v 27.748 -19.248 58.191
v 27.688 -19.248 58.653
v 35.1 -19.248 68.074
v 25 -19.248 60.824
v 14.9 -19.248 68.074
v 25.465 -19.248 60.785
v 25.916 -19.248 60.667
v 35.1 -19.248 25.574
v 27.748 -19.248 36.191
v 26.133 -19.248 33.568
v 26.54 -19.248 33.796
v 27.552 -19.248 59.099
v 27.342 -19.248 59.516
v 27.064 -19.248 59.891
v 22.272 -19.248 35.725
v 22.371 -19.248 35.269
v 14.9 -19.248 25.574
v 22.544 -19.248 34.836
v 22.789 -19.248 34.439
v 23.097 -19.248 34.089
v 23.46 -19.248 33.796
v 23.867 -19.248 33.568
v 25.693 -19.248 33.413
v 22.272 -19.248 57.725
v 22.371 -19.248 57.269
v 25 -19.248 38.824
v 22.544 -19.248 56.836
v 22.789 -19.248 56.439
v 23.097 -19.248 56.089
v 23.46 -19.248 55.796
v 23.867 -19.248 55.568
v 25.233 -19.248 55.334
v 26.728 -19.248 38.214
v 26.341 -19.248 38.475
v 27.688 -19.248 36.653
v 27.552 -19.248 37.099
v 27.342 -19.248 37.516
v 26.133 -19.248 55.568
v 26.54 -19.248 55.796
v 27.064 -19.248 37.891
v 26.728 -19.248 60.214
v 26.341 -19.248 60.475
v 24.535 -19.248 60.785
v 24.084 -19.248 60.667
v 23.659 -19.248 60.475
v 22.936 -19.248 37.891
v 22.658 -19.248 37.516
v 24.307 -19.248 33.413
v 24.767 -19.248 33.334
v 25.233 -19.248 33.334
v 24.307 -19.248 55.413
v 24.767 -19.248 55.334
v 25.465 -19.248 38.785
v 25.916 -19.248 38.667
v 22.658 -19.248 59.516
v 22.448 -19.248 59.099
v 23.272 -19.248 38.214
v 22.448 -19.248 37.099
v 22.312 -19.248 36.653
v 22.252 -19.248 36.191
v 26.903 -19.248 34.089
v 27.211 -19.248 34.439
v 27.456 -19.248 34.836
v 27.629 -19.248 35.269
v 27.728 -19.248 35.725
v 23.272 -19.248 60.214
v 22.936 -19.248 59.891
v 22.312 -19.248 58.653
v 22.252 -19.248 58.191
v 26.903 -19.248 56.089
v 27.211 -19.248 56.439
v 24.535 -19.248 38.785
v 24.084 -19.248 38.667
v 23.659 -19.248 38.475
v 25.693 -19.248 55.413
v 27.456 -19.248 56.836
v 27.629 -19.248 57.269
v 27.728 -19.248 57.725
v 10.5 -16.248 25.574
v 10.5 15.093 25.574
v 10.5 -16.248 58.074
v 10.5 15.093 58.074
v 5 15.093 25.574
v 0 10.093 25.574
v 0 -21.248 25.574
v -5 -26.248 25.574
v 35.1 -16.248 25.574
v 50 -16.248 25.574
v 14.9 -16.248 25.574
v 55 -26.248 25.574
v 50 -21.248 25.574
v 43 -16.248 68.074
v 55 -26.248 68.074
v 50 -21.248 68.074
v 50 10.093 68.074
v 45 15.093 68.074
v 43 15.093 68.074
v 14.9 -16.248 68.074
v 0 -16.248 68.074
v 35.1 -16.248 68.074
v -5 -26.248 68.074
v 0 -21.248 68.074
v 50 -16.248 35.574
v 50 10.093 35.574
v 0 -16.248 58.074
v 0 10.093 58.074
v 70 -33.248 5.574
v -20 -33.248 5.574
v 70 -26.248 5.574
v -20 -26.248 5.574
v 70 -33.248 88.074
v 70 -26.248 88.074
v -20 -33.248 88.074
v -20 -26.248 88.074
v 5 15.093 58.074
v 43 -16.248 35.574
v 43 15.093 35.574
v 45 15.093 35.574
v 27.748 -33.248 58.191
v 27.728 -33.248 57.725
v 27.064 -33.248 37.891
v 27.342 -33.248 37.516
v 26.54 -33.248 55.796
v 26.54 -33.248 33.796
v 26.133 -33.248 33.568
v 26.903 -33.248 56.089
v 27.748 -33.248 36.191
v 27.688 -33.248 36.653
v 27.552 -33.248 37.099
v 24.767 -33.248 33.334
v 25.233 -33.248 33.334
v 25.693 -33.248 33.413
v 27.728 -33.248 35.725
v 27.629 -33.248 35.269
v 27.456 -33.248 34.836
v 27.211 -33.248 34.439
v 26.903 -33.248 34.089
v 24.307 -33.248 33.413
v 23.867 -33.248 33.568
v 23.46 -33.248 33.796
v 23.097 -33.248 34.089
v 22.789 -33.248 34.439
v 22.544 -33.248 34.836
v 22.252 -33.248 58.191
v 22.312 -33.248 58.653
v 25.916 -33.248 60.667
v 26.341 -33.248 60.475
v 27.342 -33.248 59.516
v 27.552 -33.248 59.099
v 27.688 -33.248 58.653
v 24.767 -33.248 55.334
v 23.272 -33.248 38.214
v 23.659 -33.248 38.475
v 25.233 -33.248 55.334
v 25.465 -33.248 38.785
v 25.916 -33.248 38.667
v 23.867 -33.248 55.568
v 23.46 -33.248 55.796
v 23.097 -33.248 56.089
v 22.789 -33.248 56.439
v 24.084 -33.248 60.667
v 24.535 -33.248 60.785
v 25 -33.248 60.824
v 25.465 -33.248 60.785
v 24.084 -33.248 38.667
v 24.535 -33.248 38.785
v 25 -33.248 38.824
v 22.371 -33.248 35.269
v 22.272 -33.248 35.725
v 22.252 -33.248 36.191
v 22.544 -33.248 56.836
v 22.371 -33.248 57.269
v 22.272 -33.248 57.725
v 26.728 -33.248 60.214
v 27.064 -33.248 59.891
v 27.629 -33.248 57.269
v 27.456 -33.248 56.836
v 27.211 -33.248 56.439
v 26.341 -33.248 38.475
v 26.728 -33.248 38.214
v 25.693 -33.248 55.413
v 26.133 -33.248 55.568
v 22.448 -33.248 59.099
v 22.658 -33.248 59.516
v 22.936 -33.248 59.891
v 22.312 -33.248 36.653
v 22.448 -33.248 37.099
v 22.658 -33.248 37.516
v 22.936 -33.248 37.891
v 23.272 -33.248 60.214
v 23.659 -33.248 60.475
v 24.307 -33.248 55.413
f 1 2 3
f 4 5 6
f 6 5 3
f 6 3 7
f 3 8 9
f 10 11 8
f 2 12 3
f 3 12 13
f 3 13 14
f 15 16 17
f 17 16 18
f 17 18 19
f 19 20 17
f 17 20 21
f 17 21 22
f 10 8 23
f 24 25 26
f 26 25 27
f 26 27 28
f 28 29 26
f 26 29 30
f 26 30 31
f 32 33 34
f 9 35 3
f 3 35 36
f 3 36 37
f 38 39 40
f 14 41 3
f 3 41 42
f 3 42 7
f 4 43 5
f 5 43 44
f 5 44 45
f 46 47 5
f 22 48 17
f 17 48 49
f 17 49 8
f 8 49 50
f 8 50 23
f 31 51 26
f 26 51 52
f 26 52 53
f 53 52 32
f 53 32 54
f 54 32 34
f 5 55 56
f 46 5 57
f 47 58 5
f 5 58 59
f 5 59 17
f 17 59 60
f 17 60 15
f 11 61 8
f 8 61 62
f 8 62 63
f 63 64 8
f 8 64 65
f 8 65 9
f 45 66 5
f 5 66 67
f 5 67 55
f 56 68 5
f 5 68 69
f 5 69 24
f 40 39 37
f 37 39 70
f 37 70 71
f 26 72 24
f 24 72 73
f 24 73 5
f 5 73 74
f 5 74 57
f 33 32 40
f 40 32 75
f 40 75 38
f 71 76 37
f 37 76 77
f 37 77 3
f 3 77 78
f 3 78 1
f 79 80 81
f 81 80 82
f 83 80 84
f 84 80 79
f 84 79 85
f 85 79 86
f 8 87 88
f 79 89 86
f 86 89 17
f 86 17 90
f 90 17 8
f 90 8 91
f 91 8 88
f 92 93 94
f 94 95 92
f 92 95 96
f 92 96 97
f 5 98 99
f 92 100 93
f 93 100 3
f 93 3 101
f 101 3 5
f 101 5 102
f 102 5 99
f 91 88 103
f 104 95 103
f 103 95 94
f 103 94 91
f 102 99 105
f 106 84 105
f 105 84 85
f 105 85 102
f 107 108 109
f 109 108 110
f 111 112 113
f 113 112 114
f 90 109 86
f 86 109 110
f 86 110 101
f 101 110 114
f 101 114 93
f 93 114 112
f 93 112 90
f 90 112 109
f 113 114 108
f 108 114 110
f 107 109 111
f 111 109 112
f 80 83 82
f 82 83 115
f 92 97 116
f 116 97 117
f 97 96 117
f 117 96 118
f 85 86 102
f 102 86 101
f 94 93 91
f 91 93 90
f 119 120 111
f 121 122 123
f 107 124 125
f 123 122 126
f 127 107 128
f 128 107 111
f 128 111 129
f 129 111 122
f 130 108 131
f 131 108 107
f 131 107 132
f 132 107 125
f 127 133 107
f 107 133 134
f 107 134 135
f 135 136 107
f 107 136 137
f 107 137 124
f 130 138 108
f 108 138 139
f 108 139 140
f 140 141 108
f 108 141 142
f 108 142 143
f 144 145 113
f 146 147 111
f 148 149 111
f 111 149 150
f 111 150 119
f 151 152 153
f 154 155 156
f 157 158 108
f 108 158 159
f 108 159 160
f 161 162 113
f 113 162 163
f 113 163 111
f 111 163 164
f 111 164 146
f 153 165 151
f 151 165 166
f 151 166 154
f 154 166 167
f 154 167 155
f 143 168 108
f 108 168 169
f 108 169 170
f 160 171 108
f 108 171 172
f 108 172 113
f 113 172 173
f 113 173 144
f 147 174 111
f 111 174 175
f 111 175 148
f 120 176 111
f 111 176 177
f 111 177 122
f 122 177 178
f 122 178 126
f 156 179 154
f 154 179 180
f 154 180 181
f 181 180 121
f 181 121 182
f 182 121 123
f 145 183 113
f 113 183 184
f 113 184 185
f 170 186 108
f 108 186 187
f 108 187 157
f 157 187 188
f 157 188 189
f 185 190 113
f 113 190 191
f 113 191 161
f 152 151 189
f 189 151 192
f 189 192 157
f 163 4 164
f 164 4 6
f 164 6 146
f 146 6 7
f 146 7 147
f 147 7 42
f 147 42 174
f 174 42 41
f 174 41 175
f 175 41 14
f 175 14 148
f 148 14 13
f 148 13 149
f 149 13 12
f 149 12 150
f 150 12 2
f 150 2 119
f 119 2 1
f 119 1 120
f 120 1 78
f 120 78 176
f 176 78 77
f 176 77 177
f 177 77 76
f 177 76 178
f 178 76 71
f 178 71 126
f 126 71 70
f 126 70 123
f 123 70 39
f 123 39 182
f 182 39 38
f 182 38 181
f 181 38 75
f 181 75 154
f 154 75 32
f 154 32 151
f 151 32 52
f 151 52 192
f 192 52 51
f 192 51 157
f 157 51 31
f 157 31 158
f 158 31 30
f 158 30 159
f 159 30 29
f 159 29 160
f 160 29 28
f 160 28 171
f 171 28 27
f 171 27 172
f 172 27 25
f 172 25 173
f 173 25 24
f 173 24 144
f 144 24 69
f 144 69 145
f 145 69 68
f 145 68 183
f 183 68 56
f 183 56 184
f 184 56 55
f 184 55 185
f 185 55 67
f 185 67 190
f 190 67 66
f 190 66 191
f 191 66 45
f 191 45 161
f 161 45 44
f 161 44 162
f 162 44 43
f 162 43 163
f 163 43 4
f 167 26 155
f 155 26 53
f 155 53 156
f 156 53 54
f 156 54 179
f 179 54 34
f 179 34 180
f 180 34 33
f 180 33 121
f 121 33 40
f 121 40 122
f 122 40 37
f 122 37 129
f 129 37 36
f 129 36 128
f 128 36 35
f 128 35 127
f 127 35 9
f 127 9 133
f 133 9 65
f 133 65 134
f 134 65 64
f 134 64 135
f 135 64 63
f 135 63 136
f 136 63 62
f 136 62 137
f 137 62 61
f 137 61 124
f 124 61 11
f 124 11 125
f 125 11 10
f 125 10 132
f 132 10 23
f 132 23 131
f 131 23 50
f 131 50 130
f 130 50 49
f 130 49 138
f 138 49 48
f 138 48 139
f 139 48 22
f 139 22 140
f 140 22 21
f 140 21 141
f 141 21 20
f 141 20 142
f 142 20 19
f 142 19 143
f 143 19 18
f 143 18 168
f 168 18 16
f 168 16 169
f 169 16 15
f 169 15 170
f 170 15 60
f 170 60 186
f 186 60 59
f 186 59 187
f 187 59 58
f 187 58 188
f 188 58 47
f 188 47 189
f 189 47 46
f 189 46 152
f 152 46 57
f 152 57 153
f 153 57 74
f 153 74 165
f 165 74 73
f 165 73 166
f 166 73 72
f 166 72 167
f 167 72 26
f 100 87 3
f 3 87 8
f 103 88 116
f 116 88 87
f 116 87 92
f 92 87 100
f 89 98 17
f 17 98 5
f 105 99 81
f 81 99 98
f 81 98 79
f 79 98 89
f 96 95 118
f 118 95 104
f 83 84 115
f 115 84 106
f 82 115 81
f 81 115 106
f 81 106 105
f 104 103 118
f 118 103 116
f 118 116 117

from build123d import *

# Parameters (mm, degrees)
SKETCH1_W           = 42.5
SKETCH1_H           = 11
BOSS_EXTRUDE1_DEPTH = 50
SKETCH2_W           = 82.5
SKETCH2_H           = 4
BOSS_EXTRUDE2_DEPTH = 20
SKETCH3_W           = 82.5
SKETCH3_H           = 4
BOSS_EXTRUDE3_DEPTH = 70
SKETCH4_W           = 10.5
SKETCH4_H           = 34.341245972
SKETCH4_W_2         = 7
BOSS_EXTRUDE4_DEPTH = 42.5
CHAMFER1_SIZE       = 5
SKETCH5_W           = 90
SKETCH5_H           = 82.5
BOSS_EXTRUDE5_DEPTH = 3
SKETCH6_R           = 2.75
CUT_EXTRUDE1_DEPTH  = 118.628081347
SKETCH7_W           = 7.9
SKETCH7_H           = 42.5
SKETCH7_W_2         = 4.4
BOSS_EXTRUDE6_DEPTH = 3
CHAMFER2_SIZE       = 5
CUT_EXTRUDE2_REACH  = 124.45
SKETCH8_W           = 5.5
SKETCH8_H           = 10
SKETCH8_W_2         = 5
SKETCH9_W           = 2
SKETCH9_H           = 10
SKETCH9_W_2         = 5
CUT_EXTRUDE3_DEPTH  = 31.341245972


with BuildPart() as part:
    # Sketch1 → Boss-Extrude1 (new body)
    with BuildSketch(Plane(origin=(0, 0, 0), x_dir=(0, 0, -1), z_dir=(1, 0, 0))):
        with Locations((-46.82408442, -24.747804901)):
            Rectangle(SKETCH1_W, SKETCH1_H)
    extrude(amount=BOSS_EXTRUDE1_DEPTH)

    # Sketch2 → Boss-Extrude2 (add)
    with BuildSketch(Plane.ZY):
        with Locations((46.82408442, -28.247804901)):
            Rectangle(SKETCH2_W, SKETCH2_H)
    extrude(amount=BOSS_EXTRUDE2_DEPTH)

    # Sketch3 → Boss-Extrude3 (add)
    with BuildSketch(Plane(origin=(0, 0, 0), x_dir=(0, 0, -1), z_dir=(1, 0, 0))):
        with Locations((-46.82408442, -28.247804901)):
            Rectangle(SKETCH3_W, SKETCH3_H)
    extrude(amount=BOSS_EXTRUDE3_DEPTH)

    # Sketch4 → Boss-Extrude4 (add)
    with BuildSketch(Plane.XY.offset(68.07408442)):
        with Locations((5.25, -2.077181915)):
            Rectangle(SKETCH4_W, SKETCH4_H)
        with Locations((46.5, -2.077181915)):
            Rectangle(SKETCH4_W_2, SKETCH4_H)
    extrude(amount=-BOSS_EXTRUDE4_DEPTH)

    # Chamfer1
    chamfer1_edges = [part.edges().sort_by_distance(p)[0] for p in [
        (0, -26.247804901, 46.82408442),
        (50, -26.247804901, 46.82408442),
    ]]
    chamfer(chamfer1_edges, length=CHAMFER1_SIZE)

    # Sketch5 → Boss-Extrude5 (add)
    with BuildSketch(Plane.XZ.offset(30.247804901)):
        with Locations((25, 46.82408442)):
            Rectangle(SKETCH5_W, SKETCH5_H)
    extrude(amount=BOSS_EXTRUDE5_DEPTH)

    # Sketch6 → Cut-Extrude1 (cut, through all)
    with BuildSketch(Plane(origin=(0, -19.247804901, 0), x_dir=(1, 0, 0), z_dir=(0, 1, 0))):
        with Locations(Location((25, -36.07408442, 0), (0, 0, 270))):
            Circle(SKETCH6_R)
        with Locations(Location((25, -58.07408442, 0), (0, 0, 270))):
            Circle(SKETCH6_R)
    extrude(amount=-CUT_EXTRUDE1_DEPTH, mode=Mode.SUBTRACT)

    # Sketch7 → Boss-Extrude6 (add)
    with BuildSketch(Plane(origin=(0, -19.247804901, 0), x_dir=(1, 0, 0), z_dir=(0, 1, 0))):
        with Locations((39.05, -46.82408442)):
            Rectangle(SKETCH7_W, SKETCH7_H)
        with Locations((12.7, -46.82408442)):
            Rectangle(SKETCH7_W_2, SKETCH7_H)
    extrude(amount=BOSS_EXTRUDE6_DEPTH)

    # Chamfer2
    chamfer2_edges = [part.edges().sort_by_distance(p)[0] for p in [
        (0, 15.093441071, 46.82408442),
        (50, 15.093441071, 46.82408442),
    ]]
    chamfer(chamfer2_edges, length=CHAMFER2_SIZE)

    # Cut-Extrude2: up to this face of the body (flat: up to its plane)
    cut_extrude2_end = Plane(part.part.faces().sort_by_distance((12.7, -16.247804901, 46.82408442))[0])
    # Sketch8 → Cut-Extrude2 (cut, up to the picked face)
    with BuildSketch(Plane(origin=(0, 15.093441071, 0), x_dir=(1, 0, 0), z_dir=(0, 1, 0)), mode=Mode.PRIVATE) as cut_extrude2_sk1:
        with Locations((7.75, -63.07408442)):
            Rectangle(SKETCH8_W, SKETCH8_H)
    cut_extrude2_tool1 = split(extrude(cut_extrude2_sk1.sketch, amount=-CUT_EXTRUDE2_REACH, mode=Mode.PRIVATE), bisect_by=cut_extrude2_end, keep=Keep.BOTH, mode=Mode.PRIVATE)
    # Sketch8 → Cut-Extrude2 (cut, up to the picked face)
    with BuildSketch(Plane(origin=(0, 15.093441071, 0), x_dir=(1, 0, 0), z_dir=(0, 1, 0)), mode=Mode.PRIVATE) as cut_extrude2_sk2:
        with Locations((47.5, -30.57408442)):
            Rectangle(SKETCH8_W_2, SKETCH8_H)
    cut_extrude2_tool2 = split(extrude(cut_extrude2_sk2.sketch, amount=-CUT_EXTRUDE2_REACH, mode=Mode.PRIVATE), bisect_by=cut_extrude2_end, keep=Keep.BOTH, mode=Mode.PRIVATE)
    add(cut_extrude2_tool1.solids().sort_by(Axis((7.75, 15.093441, 63.074084), (0, -1, 0)))[0], mode=Mode.SUBTRACT)
    add(cut_extrude2_tool2.solids().sort_by(Axis((47.5, 15.093441, 30.574084), (0, -1, 0)))[0], mode=Mode.SUBTRACT)

    # Sketch9 → Cut-Extrude3 (cut)
    with BuildSketch(Plane(origin=(0, 15.093441071, 0), x_dir=(1, 0, 0), z_dir=(0, 1, 0))):
        with Locations((44, -30.57408442)):
            Rectangle(SKETCH9_W, SKETCH9_H)
        with Locations((2.5, -63.07408442)):
            Rectangle(SKETCH9_W_2, SKETCH9_H)
    extrude(amount=-CUT_EXTRUDE3_DEPTH, mode=Mode.SUBTRACT)


solid = part.part
